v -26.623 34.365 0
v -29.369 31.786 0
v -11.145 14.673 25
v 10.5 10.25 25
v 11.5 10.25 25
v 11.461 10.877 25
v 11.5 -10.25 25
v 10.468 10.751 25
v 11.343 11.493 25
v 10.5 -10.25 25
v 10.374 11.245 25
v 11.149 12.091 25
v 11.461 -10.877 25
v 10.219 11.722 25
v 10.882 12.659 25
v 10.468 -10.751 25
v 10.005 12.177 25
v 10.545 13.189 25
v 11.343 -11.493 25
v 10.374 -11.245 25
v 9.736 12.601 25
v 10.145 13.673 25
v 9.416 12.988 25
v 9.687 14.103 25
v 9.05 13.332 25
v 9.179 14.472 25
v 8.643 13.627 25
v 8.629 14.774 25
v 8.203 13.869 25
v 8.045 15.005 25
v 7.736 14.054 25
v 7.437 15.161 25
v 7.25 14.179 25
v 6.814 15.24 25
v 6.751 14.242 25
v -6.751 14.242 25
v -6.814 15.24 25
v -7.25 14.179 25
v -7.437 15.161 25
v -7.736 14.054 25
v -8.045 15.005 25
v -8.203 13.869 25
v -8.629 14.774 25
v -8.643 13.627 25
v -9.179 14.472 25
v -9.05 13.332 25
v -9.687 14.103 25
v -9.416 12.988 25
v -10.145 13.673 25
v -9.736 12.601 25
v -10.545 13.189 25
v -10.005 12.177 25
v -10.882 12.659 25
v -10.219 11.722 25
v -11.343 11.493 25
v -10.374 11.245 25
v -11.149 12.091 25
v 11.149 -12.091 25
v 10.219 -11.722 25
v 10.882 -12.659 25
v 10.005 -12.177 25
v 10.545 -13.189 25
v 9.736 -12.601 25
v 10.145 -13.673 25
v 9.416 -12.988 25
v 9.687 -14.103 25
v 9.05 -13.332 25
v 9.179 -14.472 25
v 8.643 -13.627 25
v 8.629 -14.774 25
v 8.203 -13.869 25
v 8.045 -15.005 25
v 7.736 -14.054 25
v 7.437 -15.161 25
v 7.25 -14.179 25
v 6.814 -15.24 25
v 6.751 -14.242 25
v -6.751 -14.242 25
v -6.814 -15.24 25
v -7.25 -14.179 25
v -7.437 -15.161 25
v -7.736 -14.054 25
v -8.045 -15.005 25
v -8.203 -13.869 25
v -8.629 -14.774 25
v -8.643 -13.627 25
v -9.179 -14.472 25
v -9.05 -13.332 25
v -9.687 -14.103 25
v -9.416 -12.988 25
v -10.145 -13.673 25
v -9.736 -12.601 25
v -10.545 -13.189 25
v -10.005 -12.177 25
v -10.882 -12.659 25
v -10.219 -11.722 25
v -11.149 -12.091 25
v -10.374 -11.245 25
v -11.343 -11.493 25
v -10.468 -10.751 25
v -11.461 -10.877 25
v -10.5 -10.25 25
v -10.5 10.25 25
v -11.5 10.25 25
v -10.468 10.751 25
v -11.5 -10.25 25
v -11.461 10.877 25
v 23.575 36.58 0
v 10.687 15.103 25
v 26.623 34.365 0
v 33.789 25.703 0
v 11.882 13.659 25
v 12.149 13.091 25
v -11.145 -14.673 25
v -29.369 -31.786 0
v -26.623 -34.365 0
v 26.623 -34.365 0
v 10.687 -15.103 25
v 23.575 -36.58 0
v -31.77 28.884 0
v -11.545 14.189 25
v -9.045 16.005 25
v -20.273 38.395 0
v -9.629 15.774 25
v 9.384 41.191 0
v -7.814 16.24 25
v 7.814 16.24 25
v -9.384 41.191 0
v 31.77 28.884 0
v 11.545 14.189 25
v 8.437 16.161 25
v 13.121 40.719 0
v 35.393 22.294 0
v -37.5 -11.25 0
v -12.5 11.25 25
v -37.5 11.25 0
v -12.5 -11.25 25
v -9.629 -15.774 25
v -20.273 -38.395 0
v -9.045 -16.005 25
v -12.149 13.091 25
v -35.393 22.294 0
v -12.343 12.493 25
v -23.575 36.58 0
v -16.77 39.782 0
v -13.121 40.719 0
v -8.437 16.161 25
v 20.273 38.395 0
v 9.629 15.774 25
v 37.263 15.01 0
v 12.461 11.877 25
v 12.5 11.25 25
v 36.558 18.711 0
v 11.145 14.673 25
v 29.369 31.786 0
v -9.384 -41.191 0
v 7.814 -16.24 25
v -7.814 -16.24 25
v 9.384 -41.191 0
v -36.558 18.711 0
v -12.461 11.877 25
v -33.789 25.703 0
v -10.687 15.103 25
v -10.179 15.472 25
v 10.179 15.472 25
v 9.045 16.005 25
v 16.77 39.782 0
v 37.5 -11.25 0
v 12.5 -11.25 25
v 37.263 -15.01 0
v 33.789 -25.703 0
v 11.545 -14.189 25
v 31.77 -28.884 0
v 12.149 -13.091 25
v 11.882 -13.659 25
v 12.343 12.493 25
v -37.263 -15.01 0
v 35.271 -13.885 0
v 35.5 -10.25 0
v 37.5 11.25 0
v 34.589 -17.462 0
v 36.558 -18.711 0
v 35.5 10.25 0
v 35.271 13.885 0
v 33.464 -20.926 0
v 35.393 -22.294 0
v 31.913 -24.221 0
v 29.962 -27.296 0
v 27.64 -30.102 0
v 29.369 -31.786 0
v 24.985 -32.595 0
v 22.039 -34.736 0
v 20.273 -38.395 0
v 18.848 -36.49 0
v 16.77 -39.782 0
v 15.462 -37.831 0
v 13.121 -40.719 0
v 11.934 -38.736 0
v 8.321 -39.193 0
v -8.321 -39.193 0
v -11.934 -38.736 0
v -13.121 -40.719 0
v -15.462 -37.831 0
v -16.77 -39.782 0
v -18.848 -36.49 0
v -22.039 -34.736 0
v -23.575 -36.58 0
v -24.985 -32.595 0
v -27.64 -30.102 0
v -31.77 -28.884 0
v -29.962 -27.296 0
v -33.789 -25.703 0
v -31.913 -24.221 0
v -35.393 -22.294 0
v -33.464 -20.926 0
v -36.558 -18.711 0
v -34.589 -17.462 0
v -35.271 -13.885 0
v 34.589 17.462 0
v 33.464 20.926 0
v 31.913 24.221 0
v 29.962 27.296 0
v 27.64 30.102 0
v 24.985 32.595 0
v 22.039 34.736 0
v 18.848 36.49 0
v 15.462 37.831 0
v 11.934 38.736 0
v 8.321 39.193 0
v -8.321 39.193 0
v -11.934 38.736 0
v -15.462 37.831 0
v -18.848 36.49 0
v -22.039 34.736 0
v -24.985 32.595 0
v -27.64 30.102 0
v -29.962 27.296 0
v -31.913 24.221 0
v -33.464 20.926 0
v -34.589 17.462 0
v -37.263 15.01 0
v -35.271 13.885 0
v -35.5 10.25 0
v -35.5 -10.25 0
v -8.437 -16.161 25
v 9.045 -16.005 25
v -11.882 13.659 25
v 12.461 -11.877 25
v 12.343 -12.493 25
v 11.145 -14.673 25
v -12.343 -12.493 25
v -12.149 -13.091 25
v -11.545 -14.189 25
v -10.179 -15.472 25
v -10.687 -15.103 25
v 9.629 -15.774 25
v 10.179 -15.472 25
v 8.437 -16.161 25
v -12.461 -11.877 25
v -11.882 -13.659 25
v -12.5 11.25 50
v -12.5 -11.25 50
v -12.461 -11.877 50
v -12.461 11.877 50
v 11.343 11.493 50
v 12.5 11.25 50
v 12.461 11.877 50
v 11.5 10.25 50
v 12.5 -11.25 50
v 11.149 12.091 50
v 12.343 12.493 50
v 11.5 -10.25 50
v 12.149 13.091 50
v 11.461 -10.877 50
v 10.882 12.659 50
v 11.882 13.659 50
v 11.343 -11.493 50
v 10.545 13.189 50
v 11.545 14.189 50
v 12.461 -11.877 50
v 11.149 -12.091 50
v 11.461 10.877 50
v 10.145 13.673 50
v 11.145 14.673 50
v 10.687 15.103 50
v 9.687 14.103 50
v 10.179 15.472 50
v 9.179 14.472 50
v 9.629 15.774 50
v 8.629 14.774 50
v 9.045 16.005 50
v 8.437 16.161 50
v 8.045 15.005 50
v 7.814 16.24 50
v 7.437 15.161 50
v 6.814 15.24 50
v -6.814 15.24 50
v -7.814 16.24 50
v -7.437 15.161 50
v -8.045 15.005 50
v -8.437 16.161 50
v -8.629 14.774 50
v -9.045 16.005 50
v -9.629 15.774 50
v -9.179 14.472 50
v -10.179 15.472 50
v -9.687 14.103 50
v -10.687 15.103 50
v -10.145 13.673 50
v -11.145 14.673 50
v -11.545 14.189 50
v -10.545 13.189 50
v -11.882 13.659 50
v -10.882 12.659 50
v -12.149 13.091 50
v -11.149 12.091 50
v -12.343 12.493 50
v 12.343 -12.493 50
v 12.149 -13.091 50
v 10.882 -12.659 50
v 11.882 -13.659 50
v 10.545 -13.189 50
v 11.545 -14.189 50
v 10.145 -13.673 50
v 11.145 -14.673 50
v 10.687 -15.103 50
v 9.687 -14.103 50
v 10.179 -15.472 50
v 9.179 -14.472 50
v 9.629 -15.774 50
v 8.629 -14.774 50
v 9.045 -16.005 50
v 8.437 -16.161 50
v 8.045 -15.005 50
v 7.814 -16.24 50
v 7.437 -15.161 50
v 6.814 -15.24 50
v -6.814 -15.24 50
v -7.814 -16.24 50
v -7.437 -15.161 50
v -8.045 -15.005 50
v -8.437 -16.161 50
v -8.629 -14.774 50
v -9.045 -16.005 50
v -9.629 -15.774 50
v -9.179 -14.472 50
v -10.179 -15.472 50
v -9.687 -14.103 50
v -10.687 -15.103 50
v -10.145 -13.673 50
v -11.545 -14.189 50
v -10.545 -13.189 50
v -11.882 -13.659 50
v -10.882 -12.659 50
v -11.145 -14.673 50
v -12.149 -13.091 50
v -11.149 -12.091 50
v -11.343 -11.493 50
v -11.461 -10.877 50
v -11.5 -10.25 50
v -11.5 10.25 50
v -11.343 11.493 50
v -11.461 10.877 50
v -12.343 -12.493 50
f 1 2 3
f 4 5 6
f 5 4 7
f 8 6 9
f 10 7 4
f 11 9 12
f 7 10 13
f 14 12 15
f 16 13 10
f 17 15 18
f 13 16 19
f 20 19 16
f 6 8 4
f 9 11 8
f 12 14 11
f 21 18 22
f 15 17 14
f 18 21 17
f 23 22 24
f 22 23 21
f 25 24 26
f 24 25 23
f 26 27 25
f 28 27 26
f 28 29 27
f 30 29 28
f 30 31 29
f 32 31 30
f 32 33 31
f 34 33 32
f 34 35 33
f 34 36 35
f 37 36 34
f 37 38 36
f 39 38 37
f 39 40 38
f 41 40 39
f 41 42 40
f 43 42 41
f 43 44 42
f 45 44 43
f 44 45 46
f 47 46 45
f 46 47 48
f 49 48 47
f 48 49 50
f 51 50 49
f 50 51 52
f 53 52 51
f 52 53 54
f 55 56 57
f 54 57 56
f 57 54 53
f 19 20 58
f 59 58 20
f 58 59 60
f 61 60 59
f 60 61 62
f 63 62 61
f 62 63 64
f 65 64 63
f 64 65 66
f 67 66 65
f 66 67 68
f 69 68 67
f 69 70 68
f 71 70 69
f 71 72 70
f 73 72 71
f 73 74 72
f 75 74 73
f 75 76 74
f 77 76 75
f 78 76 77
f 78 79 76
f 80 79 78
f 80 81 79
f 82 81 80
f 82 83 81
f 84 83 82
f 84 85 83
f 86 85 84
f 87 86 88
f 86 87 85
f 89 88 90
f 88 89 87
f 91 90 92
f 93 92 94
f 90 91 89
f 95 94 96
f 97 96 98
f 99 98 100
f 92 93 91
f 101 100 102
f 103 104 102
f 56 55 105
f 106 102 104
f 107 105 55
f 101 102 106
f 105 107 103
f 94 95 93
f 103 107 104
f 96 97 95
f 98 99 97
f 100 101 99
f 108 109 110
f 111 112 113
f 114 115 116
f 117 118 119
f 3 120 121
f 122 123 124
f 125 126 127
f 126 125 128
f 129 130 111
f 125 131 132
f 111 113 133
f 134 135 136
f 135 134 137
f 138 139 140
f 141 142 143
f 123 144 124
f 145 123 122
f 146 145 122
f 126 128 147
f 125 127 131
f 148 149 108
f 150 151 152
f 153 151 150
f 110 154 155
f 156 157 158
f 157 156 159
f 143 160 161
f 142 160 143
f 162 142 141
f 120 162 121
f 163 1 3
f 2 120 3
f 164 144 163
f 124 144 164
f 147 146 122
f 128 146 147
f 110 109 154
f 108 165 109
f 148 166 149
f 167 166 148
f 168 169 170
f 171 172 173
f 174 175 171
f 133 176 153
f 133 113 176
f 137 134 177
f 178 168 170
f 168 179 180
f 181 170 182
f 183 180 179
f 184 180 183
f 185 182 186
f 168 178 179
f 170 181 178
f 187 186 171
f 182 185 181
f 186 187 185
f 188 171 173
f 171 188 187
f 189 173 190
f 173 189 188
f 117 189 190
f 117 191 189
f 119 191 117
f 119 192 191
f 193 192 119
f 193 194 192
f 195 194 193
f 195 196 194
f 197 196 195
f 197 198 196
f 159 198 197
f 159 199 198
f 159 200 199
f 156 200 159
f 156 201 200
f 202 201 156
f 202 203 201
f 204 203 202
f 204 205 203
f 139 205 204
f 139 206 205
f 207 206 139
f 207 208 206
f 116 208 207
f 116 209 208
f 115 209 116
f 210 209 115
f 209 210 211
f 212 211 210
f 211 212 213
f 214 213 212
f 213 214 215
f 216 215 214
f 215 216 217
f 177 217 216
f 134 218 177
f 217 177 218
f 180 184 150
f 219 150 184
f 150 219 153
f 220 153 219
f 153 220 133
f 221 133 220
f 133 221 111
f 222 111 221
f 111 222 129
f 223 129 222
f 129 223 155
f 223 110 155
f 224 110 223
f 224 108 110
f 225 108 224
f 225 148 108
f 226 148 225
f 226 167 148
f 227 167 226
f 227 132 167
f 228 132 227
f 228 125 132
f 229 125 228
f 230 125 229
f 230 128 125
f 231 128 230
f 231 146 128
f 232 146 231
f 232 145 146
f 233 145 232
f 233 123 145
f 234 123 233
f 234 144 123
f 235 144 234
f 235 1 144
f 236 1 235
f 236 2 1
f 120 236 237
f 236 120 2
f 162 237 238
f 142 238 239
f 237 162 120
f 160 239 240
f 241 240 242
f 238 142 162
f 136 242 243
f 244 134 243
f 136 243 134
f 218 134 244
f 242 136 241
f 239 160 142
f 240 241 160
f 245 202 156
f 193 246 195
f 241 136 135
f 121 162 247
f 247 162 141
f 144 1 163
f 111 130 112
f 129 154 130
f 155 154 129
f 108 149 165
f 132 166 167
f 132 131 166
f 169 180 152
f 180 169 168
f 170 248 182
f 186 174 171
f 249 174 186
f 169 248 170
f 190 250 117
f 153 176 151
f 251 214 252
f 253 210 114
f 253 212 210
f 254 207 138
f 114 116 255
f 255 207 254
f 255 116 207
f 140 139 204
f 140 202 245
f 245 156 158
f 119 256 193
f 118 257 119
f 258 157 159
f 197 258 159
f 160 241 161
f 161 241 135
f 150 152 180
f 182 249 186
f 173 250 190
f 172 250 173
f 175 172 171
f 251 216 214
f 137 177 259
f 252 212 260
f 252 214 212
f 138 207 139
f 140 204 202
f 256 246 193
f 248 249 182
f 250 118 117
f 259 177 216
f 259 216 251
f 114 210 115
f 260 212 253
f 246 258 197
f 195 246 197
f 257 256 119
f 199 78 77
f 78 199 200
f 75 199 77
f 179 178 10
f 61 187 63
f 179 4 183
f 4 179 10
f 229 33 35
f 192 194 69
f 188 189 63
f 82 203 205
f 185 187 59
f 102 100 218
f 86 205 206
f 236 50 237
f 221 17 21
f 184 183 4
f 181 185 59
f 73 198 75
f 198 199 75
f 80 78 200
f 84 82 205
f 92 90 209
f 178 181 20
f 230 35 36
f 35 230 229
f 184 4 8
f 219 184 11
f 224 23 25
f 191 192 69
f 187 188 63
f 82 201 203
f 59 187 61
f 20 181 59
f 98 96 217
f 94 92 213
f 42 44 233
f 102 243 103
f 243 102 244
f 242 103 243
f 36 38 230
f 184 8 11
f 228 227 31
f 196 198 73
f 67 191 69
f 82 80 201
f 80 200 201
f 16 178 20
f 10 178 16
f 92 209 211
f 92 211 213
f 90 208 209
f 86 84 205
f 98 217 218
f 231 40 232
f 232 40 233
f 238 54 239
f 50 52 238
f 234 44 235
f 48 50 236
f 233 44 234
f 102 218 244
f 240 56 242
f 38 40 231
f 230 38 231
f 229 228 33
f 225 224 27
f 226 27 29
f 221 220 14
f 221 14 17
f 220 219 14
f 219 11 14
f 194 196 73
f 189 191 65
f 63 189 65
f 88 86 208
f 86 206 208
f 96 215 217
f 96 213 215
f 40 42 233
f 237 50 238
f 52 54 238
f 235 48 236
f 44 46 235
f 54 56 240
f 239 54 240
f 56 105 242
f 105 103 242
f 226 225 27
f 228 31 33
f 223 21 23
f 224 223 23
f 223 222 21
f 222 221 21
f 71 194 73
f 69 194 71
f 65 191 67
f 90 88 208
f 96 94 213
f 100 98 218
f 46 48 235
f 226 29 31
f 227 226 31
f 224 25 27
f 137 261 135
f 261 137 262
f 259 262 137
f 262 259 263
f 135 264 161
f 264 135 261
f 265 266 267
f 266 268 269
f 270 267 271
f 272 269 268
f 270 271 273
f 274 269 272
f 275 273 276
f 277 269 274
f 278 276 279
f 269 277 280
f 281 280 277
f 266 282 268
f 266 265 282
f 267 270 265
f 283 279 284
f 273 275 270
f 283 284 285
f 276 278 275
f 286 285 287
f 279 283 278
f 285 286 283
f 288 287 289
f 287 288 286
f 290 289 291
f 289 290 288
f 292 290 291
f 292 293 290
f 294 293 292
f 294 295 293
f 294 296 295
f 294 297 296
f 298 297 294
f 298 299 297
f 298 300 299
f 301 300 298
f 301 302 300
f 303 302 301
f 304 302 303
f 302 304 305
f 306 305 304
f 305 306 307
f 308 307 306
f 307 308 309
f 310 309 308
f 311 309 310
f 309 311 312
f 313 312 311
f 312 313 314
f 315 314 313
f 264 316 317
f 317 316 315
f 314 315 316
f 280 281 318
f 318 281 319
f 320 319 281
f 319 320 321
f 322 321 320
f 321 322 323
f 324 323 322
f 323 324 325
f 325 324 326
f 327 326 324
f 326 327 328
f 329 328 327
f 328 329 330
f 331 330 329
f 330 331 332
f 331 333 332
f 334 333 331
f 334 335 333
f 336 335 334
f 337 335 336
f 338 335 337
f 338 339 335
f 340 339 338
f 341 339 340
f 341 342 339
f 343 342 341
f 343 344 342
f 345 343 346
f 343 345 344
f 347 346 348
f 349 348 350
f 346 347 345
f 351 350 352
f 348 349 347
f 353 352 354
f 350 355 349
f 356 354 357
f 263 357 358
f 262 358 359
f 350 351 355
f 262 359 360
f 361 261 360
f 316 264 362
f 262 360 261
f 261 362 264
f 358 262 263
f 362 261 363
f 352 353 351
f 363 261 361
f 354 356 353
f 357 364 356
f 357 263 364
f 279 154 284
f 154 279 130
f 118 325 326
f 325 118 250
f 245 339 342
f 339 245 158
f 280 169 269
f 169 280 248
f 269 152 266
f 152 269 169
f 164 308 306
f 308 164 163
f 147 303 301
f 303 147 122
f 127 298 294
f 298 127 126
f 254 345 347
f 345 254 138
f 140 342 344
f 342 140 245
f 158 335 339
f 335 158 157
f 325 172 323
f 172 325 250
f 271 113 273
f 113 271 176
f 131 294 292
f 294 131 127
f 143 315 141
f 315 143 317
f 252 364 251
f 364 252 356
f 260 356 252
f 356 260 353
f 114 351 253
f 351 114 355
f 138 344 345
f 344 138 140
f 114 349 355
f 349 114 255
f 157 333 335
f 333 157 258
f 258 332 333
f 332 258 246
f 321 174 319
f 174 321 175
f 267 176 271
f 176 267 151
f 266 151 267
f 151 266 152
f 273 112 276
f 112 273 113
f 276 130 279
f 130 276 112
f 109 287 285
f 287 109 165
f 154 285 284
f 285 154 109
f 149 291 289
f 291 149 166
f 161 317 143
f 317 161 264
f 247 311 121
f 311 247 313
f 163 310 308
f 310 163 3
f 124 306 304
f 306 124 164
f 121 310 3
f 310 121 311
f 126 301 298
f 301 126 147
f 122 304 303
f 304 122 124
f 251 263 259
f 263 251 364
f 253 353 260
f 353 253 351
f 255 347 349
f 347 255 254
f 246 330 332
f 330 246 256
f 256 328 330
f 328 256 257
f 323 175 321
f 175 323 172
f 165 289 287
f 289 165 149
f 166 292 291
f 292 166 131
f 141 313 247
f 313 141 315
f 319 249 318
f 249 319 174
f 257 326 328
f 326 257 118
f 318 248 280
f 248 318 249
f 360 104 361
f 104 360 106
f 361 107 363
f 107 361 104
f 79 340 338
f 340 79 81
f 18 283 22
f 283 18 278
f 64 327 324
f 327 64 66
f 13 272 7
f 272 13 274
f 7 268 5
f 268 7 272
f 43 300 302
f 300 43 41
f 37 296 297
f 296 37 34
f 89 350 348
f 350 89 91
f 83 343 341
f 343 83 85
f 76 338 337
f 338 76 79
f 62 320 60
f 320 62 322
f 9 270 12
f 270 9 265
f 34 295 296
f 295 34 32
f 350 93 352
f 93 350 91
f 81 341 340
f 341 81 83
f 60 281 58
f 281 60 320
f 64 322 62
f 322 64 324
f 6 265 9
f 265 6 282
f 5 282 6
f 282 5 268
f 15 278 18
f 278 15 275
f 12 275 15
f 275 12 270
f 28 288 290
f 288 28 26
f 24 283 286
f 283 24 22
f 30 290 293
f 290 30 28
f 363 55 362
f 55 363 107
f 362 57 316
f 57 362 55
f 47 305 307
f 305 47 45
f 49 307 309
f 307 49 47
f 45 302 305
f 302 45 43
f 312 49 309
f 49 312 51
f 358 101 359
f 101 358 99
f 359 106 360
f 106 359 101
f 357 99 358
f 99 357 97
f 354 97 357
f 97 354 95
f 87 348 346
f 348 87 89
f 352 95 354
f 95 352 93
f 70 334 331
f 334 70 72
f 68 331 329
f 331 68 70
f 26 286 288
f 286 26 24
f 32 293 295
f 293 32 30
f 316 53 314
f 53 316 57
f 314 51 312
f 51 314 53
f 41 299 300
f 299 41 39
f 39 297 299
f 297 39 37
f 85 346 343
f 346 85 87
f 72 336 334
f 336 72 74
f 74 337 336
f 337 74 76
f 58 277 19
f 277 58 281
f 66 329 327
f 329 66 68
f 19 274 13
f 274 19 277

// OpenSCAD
$fn = 50;


difference() {
	union() {
		translate(v = [0, 0, 0]) {
			rotate(a = [0, 0, 0]) {
				difference() {
					union() {
						hull() {
							translate(v = [-7.5000000000, 11.2500000000, 0]) {
								cylinder(h = 25, r = 5, r1 = 30.0000000000, r2 = 5);
							}
							translate(v = [7.5000000000, 11.2500000000, 0]) {
								cylinder(h = 25, r = 5, r1 = 30.0000000000, r2 = 5);
							}
							translate(v = [-7.5000000000, -11.2500000000, 0]) {
								cylinder(h = 25, r = 5, r1 = 30.0000000000, r2 = 5);
							}
							translate(v = [7.5000000000, -11.2500000000, 0]) {
								cylinder(h = 25, r = 5, r1 = 30.0000000000, r2 = 5);
							}
						}
					}
					union() {
						hull() {
							translate(v = [-6.5000000000, 10.2500000000, 0]) {
								cylinder(h = 25, r = 5, r1 = 29.0000000000, r2 = 4);
							}
							translate(v = [6.5000000000, 10.2500000000, 0]) {
								cylinder(h = 25, r = 5, r1 = 29.0000000000, r2 = 4);
							}
							translate(v = [-6.5000000000, -10.2500000000, 0]) {
								cylinder(h = 25, r = 5, r1 = 29.0000000000, r2 = 4);
							}
							translate(v = [6.5000000000, -10.2500000000, 0]) {
								cylinder(h = 25, r = 5, r1 = 29.0000000000, r2 = 4);
							}
						}
					}
				}
			}
		}
		translate(v = [0, 0, 25]) {
			rotate(a = [0, 0, 0]) {
				difference() {
					union() {
						hull() {
							translate(v = [-7.5000000000, 11.2500000000, 0]) {
								cylinder(h = 25, r = 5);
							}
							translate(v = [7.5000000000, 11.2500000000, 0]) {
								cylinder(h = 25, r = 5);
							}
							translate(v = [-7.5000000000, -11.2500000000, 0]) {
								cylinder(h = 25, r = 5);
							}
							translate(v = [7.5000000000, -11.2500000000, 0]) {
								cylinder(h = 25, r = 5);
							}
						}
					}
					union() {
						hull() {
							translate(v = [-6.5000000000, 10.2500000000, 0]) {
								cylinder(h = 25, r = 5);
							}
							translate(v = [6.5000000000, 10.2500000000, 0]) {
								cylinder(h = 25, r = 5);
							}
							translate(v = [-6.5000000000, -10.2500000000, 0]) {
								cylinder(h = 25, r = 5);
							}
							translate(v = [6.5000000000, -10.2500000000, 0]) {
								cylinder(h = 25, r = 5);
							}
						}
					}
				}
			}
		}
	}
	union();
}
